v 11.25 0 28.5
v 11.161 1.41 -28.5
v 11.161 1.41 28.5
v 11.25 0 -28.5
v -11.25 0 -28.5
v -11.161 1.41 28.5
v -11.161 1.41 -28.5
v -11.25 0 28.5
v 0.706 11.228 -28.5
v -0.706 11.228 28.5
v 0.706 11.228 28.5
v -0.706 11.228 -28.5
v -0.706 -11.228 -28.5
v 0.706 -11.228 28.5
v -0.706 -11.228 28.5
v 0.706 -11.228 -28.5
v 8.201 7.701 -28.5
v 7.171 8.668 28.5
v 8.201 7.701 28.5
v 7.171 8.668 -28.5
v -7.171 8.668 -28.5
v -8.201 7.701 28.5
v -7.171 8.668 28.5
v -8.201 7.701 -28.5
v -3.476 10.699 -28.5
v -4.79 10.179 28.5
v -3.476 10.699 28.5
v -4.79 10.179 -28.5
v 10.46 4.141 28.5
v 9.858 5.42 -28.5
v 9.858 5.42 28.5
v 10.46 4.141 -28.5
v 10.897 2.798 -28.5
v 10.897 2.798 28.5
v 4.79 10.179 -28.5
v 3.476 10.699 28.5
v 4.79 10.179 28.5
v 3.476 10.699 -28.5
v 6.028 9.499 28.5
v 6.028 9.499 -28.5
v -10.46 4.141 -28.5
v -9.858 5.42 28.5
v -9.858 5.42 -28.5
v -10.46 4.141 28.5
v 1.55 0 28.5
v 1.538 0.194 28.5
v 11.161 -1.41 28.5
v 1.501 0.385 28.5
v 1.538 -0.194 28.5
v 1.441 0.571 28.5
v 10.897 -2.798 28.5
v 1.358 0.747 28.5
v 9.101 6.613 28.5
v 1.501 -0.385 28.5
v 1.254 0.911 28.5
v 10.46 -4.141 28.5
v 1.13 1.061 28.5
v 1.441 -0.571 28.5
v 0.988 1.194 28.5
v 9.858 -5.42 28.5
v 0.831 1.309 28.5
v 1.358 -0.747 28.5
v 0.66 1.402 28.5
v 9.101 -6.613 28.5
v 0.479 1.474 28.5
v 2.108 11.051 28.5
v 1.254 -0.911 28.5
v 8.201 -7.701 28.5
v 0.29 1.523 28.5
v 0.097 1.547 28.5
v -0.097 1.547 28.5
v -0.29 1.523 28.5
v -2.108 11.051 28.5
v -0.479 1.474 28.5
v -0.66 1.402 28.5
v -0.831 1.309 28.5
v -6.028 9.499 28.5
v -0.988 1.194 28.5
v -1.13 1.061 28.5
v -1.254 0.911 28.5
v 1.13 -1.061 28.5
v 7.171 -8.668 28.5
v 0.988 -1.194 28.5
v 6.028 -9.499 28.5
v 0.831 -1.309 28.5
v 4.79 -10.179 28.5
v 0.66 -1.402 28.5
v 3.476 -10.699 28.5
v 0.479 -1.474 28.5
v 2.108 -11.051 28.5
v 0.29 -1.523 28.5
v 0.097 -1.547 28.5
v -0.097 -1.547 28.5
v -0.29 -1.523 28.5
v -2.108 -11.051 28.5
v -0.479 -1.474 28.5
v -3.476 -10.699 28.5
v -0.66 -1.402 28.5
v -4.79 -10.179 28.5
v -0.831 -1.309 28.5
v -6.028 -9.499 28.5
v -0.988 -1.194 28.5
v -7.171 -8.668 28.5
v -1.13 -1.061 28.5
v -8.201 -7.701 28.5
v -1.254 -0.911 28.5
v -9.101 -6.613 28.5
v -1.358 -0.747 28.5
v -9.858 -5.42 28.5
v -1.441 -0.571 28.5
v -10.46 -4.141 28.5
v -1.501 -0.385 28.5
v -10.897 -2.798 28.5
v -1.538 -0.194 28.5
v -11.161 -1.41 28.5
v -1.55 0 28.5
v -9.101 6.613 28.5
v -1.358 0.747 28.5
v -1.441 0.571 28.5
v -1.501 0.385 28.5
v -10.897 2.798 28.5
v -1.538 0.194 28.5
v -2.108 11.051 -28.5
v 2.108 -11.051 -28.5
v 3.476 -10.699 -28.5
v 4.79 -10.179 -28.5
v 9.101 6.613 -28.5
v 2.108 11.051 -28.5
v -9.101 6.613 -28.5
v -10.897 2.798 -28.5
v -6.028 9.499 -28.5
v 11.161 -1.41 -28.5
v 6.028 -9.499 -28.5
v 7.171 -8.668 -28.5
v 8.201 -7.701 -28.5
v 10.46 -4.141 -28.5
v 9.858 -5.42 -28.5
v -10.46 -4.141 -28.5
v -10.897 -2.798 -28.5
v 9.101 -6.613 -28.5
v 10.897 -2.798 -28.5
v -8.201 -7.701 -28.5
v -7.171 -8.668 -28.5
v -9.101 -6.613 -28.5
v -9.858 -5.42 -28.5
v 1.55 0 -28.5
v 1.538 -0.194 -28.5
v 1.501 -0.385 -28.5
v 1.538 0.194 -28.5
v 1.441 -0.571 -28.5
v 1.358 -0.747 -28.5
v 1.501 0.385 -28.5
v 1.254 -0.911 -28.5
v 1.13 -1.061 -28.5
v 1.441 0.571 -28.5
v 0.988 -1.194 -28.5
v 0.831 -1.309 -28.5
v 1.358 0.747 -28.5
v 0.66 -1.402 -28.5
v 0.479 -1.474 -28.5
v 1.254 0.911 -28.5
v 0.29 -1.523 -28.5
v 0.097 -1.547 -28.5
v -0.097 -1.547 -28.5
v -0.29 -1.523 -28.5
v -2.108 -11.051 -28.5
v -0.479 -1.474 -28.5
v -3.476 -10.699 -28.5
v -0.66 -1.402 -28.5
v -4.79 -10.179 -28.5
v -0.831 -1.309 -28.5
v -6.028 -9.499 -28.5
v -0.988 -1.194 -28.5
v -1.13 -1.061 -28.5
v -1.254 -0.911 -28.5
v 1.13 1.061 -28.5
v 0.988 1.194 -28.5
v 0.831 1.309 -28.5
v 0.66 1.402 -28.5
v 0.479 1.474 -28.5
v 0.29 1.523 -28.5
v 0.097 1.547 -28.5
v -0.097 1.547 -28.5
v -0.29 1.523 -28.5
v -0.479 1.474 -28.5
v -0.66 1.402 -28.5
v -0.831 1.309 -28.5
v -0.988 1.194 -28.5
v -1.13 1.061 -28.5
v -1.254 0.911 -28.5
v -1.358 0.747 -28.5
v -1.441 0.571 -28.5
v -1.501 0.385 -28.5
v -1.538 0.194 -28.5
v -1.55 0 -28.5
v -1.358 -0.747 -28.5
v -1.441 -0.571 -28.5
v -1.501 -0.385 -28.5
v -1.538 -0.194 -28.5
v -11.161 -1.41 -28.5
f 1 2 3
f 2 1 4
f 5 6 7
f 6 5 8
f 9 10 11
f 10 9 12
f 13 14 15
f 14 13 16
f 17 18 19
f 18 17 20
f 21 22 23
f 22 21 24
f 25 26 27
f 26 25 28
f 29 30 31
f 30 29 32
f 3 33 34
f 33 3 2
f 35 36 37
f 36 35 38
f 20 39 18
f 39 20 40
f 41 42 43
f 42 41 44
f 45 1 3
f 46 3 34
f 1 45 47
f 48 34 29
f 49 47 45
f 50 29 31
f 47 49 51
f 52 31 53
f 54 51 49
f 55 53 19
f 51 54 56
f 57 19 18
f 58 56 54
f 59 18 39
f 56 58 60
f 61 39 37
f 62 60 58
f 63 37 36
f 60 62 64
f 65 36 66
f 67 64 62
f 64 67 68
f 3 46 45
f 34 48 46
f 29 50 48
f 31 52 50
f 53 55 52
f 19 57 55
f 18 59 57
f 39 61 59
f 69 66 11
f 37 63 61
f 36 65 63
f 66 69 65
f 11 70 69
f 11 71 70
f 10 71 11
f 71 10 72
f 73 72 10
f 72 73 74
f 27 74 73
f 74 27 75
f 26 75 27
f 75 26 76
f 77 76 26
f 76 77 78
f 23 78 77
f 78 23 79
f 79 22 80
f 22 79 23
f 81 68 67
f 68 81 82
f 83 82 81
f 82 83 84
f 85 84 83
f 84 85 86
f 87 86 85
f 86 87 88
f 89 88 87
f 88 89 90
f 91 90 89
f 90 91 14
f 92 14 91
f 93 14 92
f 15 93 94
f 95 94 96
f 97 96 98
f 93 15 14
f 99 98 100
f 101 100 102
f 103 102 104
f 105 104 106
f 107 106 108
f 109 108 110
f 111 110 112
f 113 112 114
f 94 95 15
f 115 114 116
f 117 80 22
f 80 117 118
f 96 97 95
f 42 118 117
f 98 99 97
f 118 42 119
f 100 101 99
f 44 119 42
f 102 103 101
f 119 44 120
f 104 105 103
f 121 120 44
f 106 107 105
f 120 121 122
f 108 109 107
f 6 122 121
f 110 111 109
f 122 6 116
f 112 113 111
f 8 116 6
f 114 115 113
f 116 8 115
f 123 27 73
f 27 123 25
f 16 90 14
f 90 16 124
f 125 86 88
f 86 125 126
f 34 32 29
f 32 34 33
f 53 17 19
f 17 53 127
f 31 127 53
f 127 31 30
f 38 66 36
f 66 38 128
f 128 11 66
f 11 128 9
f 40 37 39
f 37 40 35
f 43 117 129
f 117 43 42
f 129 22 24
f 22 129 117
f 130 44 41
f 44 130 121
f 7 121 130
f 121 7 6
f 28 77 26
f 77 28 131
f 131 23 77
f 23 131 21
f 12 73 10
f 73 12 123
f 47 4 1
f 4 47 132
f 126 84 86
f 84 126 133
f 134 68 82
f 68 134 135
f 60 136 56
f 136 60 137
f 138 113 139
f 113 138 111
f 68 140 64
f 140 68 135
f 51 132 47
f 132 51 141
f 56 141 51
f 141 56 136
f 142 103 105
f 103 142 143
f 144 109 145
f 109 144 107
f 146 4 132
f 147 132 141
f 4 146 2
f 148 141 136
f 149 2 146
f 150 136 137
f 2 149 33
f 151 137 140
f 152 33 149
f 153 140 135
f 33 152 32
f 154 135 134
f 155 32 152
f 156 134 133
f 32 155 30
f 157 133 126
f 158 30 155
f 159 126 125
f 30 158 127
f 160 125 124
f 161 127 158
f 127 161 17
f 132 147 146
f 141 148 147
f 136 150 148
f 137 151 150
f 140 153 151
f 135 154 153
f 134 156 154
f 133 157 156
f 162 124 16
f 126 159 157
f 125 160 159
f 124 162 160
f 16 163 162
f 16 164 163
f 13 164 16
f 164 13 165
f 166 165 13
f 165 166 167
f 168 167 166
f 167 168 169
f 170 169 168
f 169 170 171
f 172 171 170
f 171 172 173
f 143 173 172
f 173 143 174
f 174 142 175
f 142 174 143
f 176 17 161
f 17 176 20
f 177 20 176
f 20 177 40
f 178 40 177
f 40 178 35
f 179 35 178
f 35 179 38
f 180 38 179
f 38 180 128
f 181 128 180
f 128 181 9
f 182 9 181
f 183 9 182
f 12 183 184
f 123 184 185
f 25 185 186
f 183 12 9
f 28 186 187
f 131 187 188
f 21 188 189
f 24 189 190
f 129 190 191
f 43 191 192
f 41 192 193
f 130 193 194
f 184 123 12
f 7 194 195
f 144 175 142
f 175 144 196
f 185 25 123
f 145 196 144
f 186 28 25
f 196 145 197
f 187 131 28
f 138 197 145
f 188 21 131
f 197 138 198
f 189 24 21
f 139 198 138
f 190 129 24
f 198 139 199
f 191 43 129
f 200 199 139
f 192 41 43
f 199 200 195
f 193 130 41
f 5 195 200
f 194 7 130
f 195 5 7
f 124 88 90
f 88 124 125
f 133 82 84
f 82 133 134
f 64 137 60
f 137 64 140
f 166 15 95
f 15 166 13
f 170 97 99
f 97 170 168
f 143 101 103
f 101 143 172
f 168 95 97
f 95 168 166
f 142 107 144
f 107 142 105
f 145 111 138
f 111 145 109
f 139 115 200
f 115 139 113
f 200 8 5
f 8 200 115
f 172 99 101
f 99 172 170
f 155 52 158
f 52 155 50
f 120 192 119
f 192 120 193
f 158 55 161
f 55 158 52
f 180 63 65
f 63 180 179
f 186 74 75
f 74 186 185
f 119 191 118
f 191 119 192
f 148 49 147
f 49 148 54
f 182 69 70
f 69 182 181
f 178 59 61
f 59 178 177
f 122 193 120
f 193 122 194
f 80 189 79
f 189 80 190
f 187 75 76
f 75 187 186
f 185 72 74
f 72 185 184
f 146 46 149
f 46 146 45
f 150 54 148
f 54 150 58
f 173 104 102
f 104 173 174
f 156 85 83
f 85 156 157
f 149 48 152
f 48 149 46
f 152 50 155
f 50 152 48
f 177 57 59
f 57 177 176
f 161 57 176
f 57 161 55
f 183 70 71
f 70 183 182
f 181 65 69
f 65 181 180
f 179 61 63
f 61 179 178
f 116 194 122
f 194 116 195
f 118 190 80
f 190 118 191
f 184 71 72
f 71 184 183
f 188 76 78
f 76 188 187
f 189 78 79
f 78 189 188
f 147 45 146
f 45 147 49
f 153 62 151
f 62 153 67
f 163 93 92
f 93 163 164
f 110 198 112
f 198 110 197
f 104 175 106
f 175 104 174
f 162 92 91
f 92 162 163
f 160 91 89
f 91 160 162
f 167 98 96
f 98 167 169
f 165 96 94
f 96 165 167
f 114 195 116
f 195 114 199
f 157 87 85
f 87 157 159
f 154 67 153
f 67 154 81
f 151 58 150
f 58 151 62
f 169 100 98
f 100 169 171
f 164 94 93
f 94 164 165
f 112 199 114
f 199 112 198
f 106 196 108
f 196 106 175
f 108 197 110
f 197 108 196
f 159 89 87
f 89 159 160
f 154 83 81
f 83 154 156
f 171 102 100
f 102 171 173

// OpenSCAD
$fn = 50;


difference() {
	union() {
		translate(v = [0, 0, -28.5000000000]) {
			cylinder(h = 57, r = 11.2500000000);
		}
	}
	union() {
		translate(v = [0, 0, -100.0000000000]) {
			cylinder(h = 200, r = 1.5500000000);
		}
	}
}
